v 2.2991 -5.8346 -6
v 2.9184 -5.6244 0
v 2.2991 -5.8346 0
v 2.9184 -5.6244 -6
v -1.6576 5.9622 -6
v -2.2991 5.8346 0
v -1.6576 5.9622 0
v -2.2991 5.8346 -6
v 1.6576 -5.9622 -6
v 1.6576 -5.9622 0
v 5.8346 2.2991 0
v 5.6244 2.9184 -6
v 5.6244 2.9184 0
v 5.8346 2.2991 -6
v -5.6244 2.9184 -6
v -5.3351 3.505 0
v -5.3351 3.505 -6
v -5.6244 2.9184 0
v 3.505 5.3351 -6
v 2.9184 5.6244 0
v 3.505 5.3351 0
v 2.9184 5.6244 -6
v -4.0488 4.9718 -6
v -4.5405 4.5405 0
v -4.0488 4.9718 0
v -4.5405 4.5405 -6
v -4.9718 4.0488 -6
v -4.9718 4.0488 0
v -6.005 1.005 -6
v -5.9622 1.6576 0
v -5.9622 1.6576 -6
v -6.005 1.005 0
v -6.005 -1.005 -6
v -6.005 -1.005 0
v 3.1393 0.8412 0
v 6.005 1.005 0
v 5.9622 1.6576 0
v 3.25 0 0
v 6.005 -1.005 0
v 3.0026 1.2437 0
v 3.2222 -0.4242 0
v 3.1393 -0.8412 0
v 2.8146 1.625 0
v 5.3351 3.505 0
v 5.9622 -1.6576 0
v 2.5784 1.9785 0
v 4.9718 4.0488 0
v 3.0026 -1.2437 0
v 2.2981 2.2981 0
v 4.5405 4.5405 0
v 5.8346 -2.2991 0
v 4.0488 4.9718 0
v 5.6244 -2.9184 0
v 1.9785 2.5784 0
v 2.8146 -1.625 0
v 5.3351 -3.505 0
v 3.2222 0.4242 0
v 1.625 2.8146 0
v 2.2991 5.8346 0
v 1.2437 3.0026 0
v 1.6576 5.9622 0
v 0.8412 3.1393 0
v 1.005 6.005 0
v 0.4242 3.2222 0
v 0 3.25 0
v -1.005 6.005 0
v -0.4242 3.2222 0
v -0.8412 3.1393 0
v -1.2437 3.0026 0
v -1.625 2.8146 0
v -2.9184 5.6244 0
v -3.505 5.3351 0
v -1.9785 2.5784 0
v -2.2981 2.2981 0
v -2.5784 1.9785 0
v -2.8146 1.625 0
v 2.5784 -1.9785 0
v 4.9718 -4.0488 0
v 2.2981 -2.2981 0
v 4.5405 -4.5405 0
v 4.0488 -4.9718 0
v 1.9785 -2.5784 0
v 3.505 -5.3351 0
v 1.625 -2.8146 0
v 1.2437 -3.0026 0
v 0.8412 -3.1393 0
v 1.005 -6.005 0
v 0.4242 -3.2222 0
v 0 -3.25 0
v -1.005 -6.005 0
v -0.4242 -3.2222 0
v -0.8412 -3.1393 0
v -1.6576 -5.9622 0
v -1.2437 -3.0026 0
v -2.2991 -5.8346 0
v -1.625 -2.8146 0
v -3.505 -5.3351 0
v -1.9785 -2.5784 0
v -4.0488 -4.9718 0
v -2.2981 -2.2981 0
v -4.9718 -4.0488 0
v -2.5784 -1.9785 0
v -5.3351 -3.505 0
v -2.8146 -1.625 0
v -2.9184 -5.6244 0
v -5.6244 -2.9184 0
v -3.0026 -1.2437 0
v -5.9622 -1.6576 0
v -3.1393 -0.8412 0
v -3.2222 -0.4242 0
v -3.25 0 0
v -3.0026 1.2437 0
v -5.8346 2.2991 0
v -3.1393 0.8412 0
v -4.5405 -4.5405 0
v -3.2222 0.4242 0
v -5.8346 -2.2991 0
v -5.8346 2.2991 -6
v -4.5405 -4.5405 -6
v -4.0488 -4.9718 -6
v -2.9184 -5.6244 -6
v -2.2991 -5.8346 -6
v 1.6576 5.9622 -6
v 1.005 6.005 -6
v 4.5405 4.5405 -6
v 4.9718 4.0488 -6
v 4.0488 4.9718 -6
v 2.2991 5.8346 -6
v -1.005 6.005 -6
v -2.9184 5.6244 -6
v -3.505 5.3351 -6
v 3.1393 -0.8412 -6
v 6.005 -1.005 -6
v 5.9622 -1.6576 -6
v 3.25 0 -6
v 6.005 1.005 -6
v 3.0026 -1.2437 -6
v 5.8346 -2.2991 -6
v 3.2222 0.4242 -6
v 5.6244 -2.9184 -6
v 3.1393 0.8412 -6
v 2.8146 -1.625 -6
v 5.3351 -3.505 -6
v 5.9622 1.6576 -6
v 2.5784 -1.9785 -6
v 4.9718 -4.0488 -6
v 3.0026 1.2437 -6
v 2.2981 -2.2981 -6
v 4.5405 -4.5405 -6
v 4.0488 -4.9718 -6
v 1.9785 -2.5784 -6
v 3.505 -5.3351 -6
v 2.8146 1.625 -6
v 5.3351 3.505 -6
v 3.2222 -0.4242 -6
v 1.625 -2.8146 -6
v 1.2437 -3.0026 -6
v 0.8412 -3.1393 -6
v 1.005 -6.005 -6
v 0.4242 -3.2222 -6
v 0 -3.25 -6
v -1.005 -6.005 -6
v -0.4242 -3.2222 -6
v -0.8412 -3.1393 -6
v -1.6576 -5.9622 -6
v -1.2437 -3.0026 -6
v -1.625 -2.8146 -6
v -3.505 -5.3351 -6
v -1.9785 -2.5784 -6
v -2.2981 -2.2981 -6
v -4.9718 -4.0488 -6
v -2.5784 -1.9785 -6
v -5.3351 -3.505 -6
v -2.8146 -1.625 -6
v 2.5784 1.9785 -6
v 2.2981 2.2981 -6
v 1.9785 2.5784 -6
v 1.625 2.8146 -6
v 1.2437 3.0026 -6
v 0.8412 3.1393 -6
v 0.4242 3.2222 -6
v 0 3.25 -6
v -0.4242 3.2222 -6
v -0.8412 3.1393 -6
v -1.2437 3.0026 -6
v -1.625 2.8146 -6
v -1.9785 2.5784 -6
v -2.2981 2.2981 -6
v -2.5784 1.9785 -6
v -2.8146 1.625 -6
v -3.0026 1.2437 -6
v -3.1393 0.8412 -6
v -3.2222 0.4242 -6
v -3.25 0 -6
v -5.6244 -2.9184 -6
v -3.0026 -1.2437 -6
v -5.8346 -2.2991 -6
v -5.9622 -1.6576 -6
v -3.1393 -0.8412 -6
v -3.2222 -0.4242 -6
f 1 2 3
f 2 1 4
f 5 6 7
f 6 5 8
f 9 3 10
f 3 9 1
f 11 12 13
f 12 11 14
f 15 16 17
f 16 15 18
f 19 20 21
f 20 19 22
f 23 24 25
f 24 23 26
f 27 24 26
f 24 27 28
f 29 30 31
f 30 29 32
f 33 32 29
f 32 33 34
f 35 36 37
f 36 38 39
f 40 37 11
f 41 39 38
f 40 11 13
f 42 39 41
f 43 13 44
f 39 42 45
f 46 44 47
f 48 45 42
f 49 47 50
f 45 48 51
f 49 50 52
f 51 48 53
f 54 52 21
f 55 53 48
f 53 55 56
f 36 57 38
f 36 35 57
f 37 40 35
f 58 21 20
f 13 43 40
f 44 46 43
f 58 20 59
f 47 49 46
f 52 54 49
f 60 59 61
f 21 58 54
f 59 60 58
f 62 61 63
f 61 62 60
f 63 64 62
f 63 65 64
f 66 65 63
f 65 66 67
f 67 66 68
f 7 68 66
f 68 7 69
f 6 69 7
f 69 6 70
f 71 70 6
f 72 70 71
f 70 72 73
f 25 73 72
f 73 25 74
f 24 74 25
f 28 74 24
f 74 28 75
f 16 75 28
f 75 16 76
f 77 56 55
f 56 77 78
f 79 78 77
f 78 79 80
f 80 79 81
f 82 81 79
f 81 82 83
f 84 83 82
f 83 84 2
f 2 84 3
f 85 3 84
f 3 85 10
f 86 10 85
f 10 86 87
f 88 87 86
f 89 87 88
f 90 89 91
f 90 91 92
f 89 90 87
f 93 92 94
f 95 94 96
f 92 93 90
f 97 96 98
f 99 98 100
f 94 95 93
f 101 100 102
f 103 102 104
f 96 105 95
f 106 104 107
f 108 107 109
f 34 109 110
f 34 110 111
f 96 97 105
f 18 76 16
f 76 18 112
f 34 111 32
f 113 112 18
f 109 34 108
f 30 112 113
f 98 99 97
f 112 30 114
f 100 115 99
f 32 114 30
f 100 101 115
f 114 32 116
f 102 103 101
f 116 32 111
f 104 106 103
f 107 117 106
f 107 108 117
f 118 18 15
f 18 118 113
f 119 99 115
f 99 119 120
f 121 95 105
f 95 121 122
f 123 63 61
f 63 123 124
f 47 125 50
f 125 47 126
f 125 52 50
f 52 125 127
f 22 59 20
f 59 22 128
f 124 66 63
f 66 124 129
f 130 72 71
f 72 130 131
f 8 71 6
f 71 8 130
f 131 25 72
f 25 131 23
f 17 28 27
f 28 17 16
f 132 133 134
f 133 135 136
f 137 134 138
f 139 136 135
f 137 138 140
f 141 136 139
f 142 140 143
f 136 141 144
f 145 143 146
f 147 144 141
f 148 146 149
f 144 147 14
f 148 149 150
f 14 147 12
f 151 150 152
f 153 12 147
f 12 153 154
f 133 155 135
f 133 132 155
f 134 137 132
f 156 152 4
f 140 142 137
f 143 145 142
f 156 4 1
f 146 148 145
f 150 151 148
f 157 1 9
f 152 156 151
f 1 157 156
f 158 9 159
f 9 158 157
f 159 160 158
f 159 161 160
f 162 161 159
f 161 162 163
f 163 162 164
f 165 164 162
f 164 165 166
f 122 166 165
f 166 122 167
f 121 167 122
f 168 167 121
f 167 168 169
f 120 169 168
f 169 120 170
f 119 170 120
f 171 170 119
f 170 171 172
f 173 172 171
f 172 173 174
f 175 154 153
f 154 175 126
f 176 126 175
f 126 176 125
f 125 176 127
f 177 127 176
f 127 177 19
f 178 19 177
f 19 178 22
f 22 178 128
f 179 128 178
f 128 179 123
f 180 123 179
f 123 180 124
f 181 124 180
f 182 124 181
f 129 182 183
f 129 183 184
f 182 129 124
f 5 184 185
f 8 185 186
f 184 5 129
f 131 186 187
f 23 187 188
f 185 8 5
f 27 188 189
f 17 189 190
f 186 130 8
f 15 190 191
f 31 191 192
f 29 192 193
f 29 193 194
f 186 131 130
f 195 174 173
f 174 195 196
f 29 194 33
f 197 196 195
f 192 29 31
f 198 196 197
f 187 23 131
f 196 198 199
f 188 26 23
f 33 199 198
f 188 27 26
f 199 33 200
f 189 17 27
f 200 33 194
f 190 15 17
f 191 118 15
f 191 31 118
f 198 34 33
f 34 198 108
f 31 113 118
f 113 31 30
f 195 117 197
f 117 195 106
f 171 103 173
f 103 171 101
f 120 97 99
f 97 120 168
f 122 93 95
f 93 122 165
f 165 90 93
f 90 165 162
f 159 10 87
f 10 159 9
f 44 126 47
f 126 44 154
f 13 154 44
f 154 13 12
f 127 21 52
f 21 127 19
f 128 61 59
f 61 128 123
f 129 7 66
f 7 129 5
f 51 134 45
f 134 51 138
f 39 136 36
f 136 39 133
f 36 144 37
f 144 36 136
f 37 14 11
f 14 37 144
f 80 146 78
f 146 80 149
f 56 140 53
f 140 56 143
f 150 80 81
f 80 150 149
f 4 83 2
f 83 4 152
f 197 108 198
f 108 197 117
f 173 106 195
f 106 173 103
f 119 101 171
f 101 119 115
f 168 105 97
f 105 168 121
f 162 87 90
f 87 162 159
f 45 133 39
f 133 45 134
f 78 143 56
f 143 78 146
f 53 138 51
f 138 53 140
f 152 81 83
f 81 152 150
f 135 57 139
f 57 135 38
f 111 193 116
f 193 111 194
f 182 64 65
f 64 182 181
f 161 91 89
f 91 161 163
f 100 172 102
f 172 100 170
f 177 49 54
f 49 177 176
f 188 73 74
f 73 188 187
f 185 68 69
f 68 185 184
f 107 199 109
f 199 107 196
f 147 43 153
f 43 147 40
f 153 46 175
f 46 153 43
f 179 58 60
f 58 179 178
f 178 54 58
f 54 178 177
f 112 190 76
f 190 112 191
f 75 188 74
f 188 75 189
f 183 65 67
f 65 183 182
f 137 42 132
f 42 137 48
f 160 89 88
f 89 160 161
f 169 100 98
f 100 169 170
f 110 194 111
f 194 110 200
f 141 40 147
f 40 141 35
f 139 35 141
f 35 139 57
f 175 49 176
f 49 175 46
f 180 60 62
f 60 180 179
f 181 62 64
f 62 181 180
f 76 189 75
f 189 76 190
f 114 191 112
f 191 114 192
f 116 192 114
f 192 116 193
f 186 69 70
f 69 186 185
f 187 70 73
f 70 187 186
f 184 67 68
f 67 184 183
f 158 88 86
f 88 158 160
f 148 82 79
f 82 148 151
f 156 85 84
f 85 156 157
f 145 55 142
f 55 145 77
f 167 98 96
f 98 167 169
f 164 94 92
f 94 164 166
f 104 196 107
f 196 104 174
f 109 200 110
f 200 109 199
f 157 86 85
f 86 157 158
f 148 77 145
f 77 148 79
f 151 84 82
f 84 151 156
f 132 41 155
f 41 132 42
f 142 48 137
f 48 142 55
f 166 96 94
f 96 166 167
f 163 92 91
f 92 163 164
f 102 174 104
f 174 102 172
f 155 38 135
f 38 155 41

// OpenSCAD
$fn = 48;


difference() {
	union() {
		translate(v = [0, 0, 0]) {
			difference() {
				union() {
					color(alpha = 1.0000000000, c = "Gold") {
						translate(v = [0, 0, 0]) {
							rotate(a = [0, 0, 0]) {
								translate(v = [0, 0, -6]) {
									linear_extrude(height = 6) {
										offset(r = 5) {
											square(center = true, size = [2.0100000000, 2.0100000000]);
										}
									}
								}
							}
						}
					}
				}
				union() {
					color(alpha = 1.0000000000, c = "Gold") {
						translate(v = [0.0000000000, 0.0000000000, 0]) {
							rotate(a = [0, 0, 0]) {
								translate(v = [0, 0, -250]) {
									cylinder(h = 500, r = 3.2500000000);
								}
							}
						}
					}
				}
			}
		}
	}
	union();
}
